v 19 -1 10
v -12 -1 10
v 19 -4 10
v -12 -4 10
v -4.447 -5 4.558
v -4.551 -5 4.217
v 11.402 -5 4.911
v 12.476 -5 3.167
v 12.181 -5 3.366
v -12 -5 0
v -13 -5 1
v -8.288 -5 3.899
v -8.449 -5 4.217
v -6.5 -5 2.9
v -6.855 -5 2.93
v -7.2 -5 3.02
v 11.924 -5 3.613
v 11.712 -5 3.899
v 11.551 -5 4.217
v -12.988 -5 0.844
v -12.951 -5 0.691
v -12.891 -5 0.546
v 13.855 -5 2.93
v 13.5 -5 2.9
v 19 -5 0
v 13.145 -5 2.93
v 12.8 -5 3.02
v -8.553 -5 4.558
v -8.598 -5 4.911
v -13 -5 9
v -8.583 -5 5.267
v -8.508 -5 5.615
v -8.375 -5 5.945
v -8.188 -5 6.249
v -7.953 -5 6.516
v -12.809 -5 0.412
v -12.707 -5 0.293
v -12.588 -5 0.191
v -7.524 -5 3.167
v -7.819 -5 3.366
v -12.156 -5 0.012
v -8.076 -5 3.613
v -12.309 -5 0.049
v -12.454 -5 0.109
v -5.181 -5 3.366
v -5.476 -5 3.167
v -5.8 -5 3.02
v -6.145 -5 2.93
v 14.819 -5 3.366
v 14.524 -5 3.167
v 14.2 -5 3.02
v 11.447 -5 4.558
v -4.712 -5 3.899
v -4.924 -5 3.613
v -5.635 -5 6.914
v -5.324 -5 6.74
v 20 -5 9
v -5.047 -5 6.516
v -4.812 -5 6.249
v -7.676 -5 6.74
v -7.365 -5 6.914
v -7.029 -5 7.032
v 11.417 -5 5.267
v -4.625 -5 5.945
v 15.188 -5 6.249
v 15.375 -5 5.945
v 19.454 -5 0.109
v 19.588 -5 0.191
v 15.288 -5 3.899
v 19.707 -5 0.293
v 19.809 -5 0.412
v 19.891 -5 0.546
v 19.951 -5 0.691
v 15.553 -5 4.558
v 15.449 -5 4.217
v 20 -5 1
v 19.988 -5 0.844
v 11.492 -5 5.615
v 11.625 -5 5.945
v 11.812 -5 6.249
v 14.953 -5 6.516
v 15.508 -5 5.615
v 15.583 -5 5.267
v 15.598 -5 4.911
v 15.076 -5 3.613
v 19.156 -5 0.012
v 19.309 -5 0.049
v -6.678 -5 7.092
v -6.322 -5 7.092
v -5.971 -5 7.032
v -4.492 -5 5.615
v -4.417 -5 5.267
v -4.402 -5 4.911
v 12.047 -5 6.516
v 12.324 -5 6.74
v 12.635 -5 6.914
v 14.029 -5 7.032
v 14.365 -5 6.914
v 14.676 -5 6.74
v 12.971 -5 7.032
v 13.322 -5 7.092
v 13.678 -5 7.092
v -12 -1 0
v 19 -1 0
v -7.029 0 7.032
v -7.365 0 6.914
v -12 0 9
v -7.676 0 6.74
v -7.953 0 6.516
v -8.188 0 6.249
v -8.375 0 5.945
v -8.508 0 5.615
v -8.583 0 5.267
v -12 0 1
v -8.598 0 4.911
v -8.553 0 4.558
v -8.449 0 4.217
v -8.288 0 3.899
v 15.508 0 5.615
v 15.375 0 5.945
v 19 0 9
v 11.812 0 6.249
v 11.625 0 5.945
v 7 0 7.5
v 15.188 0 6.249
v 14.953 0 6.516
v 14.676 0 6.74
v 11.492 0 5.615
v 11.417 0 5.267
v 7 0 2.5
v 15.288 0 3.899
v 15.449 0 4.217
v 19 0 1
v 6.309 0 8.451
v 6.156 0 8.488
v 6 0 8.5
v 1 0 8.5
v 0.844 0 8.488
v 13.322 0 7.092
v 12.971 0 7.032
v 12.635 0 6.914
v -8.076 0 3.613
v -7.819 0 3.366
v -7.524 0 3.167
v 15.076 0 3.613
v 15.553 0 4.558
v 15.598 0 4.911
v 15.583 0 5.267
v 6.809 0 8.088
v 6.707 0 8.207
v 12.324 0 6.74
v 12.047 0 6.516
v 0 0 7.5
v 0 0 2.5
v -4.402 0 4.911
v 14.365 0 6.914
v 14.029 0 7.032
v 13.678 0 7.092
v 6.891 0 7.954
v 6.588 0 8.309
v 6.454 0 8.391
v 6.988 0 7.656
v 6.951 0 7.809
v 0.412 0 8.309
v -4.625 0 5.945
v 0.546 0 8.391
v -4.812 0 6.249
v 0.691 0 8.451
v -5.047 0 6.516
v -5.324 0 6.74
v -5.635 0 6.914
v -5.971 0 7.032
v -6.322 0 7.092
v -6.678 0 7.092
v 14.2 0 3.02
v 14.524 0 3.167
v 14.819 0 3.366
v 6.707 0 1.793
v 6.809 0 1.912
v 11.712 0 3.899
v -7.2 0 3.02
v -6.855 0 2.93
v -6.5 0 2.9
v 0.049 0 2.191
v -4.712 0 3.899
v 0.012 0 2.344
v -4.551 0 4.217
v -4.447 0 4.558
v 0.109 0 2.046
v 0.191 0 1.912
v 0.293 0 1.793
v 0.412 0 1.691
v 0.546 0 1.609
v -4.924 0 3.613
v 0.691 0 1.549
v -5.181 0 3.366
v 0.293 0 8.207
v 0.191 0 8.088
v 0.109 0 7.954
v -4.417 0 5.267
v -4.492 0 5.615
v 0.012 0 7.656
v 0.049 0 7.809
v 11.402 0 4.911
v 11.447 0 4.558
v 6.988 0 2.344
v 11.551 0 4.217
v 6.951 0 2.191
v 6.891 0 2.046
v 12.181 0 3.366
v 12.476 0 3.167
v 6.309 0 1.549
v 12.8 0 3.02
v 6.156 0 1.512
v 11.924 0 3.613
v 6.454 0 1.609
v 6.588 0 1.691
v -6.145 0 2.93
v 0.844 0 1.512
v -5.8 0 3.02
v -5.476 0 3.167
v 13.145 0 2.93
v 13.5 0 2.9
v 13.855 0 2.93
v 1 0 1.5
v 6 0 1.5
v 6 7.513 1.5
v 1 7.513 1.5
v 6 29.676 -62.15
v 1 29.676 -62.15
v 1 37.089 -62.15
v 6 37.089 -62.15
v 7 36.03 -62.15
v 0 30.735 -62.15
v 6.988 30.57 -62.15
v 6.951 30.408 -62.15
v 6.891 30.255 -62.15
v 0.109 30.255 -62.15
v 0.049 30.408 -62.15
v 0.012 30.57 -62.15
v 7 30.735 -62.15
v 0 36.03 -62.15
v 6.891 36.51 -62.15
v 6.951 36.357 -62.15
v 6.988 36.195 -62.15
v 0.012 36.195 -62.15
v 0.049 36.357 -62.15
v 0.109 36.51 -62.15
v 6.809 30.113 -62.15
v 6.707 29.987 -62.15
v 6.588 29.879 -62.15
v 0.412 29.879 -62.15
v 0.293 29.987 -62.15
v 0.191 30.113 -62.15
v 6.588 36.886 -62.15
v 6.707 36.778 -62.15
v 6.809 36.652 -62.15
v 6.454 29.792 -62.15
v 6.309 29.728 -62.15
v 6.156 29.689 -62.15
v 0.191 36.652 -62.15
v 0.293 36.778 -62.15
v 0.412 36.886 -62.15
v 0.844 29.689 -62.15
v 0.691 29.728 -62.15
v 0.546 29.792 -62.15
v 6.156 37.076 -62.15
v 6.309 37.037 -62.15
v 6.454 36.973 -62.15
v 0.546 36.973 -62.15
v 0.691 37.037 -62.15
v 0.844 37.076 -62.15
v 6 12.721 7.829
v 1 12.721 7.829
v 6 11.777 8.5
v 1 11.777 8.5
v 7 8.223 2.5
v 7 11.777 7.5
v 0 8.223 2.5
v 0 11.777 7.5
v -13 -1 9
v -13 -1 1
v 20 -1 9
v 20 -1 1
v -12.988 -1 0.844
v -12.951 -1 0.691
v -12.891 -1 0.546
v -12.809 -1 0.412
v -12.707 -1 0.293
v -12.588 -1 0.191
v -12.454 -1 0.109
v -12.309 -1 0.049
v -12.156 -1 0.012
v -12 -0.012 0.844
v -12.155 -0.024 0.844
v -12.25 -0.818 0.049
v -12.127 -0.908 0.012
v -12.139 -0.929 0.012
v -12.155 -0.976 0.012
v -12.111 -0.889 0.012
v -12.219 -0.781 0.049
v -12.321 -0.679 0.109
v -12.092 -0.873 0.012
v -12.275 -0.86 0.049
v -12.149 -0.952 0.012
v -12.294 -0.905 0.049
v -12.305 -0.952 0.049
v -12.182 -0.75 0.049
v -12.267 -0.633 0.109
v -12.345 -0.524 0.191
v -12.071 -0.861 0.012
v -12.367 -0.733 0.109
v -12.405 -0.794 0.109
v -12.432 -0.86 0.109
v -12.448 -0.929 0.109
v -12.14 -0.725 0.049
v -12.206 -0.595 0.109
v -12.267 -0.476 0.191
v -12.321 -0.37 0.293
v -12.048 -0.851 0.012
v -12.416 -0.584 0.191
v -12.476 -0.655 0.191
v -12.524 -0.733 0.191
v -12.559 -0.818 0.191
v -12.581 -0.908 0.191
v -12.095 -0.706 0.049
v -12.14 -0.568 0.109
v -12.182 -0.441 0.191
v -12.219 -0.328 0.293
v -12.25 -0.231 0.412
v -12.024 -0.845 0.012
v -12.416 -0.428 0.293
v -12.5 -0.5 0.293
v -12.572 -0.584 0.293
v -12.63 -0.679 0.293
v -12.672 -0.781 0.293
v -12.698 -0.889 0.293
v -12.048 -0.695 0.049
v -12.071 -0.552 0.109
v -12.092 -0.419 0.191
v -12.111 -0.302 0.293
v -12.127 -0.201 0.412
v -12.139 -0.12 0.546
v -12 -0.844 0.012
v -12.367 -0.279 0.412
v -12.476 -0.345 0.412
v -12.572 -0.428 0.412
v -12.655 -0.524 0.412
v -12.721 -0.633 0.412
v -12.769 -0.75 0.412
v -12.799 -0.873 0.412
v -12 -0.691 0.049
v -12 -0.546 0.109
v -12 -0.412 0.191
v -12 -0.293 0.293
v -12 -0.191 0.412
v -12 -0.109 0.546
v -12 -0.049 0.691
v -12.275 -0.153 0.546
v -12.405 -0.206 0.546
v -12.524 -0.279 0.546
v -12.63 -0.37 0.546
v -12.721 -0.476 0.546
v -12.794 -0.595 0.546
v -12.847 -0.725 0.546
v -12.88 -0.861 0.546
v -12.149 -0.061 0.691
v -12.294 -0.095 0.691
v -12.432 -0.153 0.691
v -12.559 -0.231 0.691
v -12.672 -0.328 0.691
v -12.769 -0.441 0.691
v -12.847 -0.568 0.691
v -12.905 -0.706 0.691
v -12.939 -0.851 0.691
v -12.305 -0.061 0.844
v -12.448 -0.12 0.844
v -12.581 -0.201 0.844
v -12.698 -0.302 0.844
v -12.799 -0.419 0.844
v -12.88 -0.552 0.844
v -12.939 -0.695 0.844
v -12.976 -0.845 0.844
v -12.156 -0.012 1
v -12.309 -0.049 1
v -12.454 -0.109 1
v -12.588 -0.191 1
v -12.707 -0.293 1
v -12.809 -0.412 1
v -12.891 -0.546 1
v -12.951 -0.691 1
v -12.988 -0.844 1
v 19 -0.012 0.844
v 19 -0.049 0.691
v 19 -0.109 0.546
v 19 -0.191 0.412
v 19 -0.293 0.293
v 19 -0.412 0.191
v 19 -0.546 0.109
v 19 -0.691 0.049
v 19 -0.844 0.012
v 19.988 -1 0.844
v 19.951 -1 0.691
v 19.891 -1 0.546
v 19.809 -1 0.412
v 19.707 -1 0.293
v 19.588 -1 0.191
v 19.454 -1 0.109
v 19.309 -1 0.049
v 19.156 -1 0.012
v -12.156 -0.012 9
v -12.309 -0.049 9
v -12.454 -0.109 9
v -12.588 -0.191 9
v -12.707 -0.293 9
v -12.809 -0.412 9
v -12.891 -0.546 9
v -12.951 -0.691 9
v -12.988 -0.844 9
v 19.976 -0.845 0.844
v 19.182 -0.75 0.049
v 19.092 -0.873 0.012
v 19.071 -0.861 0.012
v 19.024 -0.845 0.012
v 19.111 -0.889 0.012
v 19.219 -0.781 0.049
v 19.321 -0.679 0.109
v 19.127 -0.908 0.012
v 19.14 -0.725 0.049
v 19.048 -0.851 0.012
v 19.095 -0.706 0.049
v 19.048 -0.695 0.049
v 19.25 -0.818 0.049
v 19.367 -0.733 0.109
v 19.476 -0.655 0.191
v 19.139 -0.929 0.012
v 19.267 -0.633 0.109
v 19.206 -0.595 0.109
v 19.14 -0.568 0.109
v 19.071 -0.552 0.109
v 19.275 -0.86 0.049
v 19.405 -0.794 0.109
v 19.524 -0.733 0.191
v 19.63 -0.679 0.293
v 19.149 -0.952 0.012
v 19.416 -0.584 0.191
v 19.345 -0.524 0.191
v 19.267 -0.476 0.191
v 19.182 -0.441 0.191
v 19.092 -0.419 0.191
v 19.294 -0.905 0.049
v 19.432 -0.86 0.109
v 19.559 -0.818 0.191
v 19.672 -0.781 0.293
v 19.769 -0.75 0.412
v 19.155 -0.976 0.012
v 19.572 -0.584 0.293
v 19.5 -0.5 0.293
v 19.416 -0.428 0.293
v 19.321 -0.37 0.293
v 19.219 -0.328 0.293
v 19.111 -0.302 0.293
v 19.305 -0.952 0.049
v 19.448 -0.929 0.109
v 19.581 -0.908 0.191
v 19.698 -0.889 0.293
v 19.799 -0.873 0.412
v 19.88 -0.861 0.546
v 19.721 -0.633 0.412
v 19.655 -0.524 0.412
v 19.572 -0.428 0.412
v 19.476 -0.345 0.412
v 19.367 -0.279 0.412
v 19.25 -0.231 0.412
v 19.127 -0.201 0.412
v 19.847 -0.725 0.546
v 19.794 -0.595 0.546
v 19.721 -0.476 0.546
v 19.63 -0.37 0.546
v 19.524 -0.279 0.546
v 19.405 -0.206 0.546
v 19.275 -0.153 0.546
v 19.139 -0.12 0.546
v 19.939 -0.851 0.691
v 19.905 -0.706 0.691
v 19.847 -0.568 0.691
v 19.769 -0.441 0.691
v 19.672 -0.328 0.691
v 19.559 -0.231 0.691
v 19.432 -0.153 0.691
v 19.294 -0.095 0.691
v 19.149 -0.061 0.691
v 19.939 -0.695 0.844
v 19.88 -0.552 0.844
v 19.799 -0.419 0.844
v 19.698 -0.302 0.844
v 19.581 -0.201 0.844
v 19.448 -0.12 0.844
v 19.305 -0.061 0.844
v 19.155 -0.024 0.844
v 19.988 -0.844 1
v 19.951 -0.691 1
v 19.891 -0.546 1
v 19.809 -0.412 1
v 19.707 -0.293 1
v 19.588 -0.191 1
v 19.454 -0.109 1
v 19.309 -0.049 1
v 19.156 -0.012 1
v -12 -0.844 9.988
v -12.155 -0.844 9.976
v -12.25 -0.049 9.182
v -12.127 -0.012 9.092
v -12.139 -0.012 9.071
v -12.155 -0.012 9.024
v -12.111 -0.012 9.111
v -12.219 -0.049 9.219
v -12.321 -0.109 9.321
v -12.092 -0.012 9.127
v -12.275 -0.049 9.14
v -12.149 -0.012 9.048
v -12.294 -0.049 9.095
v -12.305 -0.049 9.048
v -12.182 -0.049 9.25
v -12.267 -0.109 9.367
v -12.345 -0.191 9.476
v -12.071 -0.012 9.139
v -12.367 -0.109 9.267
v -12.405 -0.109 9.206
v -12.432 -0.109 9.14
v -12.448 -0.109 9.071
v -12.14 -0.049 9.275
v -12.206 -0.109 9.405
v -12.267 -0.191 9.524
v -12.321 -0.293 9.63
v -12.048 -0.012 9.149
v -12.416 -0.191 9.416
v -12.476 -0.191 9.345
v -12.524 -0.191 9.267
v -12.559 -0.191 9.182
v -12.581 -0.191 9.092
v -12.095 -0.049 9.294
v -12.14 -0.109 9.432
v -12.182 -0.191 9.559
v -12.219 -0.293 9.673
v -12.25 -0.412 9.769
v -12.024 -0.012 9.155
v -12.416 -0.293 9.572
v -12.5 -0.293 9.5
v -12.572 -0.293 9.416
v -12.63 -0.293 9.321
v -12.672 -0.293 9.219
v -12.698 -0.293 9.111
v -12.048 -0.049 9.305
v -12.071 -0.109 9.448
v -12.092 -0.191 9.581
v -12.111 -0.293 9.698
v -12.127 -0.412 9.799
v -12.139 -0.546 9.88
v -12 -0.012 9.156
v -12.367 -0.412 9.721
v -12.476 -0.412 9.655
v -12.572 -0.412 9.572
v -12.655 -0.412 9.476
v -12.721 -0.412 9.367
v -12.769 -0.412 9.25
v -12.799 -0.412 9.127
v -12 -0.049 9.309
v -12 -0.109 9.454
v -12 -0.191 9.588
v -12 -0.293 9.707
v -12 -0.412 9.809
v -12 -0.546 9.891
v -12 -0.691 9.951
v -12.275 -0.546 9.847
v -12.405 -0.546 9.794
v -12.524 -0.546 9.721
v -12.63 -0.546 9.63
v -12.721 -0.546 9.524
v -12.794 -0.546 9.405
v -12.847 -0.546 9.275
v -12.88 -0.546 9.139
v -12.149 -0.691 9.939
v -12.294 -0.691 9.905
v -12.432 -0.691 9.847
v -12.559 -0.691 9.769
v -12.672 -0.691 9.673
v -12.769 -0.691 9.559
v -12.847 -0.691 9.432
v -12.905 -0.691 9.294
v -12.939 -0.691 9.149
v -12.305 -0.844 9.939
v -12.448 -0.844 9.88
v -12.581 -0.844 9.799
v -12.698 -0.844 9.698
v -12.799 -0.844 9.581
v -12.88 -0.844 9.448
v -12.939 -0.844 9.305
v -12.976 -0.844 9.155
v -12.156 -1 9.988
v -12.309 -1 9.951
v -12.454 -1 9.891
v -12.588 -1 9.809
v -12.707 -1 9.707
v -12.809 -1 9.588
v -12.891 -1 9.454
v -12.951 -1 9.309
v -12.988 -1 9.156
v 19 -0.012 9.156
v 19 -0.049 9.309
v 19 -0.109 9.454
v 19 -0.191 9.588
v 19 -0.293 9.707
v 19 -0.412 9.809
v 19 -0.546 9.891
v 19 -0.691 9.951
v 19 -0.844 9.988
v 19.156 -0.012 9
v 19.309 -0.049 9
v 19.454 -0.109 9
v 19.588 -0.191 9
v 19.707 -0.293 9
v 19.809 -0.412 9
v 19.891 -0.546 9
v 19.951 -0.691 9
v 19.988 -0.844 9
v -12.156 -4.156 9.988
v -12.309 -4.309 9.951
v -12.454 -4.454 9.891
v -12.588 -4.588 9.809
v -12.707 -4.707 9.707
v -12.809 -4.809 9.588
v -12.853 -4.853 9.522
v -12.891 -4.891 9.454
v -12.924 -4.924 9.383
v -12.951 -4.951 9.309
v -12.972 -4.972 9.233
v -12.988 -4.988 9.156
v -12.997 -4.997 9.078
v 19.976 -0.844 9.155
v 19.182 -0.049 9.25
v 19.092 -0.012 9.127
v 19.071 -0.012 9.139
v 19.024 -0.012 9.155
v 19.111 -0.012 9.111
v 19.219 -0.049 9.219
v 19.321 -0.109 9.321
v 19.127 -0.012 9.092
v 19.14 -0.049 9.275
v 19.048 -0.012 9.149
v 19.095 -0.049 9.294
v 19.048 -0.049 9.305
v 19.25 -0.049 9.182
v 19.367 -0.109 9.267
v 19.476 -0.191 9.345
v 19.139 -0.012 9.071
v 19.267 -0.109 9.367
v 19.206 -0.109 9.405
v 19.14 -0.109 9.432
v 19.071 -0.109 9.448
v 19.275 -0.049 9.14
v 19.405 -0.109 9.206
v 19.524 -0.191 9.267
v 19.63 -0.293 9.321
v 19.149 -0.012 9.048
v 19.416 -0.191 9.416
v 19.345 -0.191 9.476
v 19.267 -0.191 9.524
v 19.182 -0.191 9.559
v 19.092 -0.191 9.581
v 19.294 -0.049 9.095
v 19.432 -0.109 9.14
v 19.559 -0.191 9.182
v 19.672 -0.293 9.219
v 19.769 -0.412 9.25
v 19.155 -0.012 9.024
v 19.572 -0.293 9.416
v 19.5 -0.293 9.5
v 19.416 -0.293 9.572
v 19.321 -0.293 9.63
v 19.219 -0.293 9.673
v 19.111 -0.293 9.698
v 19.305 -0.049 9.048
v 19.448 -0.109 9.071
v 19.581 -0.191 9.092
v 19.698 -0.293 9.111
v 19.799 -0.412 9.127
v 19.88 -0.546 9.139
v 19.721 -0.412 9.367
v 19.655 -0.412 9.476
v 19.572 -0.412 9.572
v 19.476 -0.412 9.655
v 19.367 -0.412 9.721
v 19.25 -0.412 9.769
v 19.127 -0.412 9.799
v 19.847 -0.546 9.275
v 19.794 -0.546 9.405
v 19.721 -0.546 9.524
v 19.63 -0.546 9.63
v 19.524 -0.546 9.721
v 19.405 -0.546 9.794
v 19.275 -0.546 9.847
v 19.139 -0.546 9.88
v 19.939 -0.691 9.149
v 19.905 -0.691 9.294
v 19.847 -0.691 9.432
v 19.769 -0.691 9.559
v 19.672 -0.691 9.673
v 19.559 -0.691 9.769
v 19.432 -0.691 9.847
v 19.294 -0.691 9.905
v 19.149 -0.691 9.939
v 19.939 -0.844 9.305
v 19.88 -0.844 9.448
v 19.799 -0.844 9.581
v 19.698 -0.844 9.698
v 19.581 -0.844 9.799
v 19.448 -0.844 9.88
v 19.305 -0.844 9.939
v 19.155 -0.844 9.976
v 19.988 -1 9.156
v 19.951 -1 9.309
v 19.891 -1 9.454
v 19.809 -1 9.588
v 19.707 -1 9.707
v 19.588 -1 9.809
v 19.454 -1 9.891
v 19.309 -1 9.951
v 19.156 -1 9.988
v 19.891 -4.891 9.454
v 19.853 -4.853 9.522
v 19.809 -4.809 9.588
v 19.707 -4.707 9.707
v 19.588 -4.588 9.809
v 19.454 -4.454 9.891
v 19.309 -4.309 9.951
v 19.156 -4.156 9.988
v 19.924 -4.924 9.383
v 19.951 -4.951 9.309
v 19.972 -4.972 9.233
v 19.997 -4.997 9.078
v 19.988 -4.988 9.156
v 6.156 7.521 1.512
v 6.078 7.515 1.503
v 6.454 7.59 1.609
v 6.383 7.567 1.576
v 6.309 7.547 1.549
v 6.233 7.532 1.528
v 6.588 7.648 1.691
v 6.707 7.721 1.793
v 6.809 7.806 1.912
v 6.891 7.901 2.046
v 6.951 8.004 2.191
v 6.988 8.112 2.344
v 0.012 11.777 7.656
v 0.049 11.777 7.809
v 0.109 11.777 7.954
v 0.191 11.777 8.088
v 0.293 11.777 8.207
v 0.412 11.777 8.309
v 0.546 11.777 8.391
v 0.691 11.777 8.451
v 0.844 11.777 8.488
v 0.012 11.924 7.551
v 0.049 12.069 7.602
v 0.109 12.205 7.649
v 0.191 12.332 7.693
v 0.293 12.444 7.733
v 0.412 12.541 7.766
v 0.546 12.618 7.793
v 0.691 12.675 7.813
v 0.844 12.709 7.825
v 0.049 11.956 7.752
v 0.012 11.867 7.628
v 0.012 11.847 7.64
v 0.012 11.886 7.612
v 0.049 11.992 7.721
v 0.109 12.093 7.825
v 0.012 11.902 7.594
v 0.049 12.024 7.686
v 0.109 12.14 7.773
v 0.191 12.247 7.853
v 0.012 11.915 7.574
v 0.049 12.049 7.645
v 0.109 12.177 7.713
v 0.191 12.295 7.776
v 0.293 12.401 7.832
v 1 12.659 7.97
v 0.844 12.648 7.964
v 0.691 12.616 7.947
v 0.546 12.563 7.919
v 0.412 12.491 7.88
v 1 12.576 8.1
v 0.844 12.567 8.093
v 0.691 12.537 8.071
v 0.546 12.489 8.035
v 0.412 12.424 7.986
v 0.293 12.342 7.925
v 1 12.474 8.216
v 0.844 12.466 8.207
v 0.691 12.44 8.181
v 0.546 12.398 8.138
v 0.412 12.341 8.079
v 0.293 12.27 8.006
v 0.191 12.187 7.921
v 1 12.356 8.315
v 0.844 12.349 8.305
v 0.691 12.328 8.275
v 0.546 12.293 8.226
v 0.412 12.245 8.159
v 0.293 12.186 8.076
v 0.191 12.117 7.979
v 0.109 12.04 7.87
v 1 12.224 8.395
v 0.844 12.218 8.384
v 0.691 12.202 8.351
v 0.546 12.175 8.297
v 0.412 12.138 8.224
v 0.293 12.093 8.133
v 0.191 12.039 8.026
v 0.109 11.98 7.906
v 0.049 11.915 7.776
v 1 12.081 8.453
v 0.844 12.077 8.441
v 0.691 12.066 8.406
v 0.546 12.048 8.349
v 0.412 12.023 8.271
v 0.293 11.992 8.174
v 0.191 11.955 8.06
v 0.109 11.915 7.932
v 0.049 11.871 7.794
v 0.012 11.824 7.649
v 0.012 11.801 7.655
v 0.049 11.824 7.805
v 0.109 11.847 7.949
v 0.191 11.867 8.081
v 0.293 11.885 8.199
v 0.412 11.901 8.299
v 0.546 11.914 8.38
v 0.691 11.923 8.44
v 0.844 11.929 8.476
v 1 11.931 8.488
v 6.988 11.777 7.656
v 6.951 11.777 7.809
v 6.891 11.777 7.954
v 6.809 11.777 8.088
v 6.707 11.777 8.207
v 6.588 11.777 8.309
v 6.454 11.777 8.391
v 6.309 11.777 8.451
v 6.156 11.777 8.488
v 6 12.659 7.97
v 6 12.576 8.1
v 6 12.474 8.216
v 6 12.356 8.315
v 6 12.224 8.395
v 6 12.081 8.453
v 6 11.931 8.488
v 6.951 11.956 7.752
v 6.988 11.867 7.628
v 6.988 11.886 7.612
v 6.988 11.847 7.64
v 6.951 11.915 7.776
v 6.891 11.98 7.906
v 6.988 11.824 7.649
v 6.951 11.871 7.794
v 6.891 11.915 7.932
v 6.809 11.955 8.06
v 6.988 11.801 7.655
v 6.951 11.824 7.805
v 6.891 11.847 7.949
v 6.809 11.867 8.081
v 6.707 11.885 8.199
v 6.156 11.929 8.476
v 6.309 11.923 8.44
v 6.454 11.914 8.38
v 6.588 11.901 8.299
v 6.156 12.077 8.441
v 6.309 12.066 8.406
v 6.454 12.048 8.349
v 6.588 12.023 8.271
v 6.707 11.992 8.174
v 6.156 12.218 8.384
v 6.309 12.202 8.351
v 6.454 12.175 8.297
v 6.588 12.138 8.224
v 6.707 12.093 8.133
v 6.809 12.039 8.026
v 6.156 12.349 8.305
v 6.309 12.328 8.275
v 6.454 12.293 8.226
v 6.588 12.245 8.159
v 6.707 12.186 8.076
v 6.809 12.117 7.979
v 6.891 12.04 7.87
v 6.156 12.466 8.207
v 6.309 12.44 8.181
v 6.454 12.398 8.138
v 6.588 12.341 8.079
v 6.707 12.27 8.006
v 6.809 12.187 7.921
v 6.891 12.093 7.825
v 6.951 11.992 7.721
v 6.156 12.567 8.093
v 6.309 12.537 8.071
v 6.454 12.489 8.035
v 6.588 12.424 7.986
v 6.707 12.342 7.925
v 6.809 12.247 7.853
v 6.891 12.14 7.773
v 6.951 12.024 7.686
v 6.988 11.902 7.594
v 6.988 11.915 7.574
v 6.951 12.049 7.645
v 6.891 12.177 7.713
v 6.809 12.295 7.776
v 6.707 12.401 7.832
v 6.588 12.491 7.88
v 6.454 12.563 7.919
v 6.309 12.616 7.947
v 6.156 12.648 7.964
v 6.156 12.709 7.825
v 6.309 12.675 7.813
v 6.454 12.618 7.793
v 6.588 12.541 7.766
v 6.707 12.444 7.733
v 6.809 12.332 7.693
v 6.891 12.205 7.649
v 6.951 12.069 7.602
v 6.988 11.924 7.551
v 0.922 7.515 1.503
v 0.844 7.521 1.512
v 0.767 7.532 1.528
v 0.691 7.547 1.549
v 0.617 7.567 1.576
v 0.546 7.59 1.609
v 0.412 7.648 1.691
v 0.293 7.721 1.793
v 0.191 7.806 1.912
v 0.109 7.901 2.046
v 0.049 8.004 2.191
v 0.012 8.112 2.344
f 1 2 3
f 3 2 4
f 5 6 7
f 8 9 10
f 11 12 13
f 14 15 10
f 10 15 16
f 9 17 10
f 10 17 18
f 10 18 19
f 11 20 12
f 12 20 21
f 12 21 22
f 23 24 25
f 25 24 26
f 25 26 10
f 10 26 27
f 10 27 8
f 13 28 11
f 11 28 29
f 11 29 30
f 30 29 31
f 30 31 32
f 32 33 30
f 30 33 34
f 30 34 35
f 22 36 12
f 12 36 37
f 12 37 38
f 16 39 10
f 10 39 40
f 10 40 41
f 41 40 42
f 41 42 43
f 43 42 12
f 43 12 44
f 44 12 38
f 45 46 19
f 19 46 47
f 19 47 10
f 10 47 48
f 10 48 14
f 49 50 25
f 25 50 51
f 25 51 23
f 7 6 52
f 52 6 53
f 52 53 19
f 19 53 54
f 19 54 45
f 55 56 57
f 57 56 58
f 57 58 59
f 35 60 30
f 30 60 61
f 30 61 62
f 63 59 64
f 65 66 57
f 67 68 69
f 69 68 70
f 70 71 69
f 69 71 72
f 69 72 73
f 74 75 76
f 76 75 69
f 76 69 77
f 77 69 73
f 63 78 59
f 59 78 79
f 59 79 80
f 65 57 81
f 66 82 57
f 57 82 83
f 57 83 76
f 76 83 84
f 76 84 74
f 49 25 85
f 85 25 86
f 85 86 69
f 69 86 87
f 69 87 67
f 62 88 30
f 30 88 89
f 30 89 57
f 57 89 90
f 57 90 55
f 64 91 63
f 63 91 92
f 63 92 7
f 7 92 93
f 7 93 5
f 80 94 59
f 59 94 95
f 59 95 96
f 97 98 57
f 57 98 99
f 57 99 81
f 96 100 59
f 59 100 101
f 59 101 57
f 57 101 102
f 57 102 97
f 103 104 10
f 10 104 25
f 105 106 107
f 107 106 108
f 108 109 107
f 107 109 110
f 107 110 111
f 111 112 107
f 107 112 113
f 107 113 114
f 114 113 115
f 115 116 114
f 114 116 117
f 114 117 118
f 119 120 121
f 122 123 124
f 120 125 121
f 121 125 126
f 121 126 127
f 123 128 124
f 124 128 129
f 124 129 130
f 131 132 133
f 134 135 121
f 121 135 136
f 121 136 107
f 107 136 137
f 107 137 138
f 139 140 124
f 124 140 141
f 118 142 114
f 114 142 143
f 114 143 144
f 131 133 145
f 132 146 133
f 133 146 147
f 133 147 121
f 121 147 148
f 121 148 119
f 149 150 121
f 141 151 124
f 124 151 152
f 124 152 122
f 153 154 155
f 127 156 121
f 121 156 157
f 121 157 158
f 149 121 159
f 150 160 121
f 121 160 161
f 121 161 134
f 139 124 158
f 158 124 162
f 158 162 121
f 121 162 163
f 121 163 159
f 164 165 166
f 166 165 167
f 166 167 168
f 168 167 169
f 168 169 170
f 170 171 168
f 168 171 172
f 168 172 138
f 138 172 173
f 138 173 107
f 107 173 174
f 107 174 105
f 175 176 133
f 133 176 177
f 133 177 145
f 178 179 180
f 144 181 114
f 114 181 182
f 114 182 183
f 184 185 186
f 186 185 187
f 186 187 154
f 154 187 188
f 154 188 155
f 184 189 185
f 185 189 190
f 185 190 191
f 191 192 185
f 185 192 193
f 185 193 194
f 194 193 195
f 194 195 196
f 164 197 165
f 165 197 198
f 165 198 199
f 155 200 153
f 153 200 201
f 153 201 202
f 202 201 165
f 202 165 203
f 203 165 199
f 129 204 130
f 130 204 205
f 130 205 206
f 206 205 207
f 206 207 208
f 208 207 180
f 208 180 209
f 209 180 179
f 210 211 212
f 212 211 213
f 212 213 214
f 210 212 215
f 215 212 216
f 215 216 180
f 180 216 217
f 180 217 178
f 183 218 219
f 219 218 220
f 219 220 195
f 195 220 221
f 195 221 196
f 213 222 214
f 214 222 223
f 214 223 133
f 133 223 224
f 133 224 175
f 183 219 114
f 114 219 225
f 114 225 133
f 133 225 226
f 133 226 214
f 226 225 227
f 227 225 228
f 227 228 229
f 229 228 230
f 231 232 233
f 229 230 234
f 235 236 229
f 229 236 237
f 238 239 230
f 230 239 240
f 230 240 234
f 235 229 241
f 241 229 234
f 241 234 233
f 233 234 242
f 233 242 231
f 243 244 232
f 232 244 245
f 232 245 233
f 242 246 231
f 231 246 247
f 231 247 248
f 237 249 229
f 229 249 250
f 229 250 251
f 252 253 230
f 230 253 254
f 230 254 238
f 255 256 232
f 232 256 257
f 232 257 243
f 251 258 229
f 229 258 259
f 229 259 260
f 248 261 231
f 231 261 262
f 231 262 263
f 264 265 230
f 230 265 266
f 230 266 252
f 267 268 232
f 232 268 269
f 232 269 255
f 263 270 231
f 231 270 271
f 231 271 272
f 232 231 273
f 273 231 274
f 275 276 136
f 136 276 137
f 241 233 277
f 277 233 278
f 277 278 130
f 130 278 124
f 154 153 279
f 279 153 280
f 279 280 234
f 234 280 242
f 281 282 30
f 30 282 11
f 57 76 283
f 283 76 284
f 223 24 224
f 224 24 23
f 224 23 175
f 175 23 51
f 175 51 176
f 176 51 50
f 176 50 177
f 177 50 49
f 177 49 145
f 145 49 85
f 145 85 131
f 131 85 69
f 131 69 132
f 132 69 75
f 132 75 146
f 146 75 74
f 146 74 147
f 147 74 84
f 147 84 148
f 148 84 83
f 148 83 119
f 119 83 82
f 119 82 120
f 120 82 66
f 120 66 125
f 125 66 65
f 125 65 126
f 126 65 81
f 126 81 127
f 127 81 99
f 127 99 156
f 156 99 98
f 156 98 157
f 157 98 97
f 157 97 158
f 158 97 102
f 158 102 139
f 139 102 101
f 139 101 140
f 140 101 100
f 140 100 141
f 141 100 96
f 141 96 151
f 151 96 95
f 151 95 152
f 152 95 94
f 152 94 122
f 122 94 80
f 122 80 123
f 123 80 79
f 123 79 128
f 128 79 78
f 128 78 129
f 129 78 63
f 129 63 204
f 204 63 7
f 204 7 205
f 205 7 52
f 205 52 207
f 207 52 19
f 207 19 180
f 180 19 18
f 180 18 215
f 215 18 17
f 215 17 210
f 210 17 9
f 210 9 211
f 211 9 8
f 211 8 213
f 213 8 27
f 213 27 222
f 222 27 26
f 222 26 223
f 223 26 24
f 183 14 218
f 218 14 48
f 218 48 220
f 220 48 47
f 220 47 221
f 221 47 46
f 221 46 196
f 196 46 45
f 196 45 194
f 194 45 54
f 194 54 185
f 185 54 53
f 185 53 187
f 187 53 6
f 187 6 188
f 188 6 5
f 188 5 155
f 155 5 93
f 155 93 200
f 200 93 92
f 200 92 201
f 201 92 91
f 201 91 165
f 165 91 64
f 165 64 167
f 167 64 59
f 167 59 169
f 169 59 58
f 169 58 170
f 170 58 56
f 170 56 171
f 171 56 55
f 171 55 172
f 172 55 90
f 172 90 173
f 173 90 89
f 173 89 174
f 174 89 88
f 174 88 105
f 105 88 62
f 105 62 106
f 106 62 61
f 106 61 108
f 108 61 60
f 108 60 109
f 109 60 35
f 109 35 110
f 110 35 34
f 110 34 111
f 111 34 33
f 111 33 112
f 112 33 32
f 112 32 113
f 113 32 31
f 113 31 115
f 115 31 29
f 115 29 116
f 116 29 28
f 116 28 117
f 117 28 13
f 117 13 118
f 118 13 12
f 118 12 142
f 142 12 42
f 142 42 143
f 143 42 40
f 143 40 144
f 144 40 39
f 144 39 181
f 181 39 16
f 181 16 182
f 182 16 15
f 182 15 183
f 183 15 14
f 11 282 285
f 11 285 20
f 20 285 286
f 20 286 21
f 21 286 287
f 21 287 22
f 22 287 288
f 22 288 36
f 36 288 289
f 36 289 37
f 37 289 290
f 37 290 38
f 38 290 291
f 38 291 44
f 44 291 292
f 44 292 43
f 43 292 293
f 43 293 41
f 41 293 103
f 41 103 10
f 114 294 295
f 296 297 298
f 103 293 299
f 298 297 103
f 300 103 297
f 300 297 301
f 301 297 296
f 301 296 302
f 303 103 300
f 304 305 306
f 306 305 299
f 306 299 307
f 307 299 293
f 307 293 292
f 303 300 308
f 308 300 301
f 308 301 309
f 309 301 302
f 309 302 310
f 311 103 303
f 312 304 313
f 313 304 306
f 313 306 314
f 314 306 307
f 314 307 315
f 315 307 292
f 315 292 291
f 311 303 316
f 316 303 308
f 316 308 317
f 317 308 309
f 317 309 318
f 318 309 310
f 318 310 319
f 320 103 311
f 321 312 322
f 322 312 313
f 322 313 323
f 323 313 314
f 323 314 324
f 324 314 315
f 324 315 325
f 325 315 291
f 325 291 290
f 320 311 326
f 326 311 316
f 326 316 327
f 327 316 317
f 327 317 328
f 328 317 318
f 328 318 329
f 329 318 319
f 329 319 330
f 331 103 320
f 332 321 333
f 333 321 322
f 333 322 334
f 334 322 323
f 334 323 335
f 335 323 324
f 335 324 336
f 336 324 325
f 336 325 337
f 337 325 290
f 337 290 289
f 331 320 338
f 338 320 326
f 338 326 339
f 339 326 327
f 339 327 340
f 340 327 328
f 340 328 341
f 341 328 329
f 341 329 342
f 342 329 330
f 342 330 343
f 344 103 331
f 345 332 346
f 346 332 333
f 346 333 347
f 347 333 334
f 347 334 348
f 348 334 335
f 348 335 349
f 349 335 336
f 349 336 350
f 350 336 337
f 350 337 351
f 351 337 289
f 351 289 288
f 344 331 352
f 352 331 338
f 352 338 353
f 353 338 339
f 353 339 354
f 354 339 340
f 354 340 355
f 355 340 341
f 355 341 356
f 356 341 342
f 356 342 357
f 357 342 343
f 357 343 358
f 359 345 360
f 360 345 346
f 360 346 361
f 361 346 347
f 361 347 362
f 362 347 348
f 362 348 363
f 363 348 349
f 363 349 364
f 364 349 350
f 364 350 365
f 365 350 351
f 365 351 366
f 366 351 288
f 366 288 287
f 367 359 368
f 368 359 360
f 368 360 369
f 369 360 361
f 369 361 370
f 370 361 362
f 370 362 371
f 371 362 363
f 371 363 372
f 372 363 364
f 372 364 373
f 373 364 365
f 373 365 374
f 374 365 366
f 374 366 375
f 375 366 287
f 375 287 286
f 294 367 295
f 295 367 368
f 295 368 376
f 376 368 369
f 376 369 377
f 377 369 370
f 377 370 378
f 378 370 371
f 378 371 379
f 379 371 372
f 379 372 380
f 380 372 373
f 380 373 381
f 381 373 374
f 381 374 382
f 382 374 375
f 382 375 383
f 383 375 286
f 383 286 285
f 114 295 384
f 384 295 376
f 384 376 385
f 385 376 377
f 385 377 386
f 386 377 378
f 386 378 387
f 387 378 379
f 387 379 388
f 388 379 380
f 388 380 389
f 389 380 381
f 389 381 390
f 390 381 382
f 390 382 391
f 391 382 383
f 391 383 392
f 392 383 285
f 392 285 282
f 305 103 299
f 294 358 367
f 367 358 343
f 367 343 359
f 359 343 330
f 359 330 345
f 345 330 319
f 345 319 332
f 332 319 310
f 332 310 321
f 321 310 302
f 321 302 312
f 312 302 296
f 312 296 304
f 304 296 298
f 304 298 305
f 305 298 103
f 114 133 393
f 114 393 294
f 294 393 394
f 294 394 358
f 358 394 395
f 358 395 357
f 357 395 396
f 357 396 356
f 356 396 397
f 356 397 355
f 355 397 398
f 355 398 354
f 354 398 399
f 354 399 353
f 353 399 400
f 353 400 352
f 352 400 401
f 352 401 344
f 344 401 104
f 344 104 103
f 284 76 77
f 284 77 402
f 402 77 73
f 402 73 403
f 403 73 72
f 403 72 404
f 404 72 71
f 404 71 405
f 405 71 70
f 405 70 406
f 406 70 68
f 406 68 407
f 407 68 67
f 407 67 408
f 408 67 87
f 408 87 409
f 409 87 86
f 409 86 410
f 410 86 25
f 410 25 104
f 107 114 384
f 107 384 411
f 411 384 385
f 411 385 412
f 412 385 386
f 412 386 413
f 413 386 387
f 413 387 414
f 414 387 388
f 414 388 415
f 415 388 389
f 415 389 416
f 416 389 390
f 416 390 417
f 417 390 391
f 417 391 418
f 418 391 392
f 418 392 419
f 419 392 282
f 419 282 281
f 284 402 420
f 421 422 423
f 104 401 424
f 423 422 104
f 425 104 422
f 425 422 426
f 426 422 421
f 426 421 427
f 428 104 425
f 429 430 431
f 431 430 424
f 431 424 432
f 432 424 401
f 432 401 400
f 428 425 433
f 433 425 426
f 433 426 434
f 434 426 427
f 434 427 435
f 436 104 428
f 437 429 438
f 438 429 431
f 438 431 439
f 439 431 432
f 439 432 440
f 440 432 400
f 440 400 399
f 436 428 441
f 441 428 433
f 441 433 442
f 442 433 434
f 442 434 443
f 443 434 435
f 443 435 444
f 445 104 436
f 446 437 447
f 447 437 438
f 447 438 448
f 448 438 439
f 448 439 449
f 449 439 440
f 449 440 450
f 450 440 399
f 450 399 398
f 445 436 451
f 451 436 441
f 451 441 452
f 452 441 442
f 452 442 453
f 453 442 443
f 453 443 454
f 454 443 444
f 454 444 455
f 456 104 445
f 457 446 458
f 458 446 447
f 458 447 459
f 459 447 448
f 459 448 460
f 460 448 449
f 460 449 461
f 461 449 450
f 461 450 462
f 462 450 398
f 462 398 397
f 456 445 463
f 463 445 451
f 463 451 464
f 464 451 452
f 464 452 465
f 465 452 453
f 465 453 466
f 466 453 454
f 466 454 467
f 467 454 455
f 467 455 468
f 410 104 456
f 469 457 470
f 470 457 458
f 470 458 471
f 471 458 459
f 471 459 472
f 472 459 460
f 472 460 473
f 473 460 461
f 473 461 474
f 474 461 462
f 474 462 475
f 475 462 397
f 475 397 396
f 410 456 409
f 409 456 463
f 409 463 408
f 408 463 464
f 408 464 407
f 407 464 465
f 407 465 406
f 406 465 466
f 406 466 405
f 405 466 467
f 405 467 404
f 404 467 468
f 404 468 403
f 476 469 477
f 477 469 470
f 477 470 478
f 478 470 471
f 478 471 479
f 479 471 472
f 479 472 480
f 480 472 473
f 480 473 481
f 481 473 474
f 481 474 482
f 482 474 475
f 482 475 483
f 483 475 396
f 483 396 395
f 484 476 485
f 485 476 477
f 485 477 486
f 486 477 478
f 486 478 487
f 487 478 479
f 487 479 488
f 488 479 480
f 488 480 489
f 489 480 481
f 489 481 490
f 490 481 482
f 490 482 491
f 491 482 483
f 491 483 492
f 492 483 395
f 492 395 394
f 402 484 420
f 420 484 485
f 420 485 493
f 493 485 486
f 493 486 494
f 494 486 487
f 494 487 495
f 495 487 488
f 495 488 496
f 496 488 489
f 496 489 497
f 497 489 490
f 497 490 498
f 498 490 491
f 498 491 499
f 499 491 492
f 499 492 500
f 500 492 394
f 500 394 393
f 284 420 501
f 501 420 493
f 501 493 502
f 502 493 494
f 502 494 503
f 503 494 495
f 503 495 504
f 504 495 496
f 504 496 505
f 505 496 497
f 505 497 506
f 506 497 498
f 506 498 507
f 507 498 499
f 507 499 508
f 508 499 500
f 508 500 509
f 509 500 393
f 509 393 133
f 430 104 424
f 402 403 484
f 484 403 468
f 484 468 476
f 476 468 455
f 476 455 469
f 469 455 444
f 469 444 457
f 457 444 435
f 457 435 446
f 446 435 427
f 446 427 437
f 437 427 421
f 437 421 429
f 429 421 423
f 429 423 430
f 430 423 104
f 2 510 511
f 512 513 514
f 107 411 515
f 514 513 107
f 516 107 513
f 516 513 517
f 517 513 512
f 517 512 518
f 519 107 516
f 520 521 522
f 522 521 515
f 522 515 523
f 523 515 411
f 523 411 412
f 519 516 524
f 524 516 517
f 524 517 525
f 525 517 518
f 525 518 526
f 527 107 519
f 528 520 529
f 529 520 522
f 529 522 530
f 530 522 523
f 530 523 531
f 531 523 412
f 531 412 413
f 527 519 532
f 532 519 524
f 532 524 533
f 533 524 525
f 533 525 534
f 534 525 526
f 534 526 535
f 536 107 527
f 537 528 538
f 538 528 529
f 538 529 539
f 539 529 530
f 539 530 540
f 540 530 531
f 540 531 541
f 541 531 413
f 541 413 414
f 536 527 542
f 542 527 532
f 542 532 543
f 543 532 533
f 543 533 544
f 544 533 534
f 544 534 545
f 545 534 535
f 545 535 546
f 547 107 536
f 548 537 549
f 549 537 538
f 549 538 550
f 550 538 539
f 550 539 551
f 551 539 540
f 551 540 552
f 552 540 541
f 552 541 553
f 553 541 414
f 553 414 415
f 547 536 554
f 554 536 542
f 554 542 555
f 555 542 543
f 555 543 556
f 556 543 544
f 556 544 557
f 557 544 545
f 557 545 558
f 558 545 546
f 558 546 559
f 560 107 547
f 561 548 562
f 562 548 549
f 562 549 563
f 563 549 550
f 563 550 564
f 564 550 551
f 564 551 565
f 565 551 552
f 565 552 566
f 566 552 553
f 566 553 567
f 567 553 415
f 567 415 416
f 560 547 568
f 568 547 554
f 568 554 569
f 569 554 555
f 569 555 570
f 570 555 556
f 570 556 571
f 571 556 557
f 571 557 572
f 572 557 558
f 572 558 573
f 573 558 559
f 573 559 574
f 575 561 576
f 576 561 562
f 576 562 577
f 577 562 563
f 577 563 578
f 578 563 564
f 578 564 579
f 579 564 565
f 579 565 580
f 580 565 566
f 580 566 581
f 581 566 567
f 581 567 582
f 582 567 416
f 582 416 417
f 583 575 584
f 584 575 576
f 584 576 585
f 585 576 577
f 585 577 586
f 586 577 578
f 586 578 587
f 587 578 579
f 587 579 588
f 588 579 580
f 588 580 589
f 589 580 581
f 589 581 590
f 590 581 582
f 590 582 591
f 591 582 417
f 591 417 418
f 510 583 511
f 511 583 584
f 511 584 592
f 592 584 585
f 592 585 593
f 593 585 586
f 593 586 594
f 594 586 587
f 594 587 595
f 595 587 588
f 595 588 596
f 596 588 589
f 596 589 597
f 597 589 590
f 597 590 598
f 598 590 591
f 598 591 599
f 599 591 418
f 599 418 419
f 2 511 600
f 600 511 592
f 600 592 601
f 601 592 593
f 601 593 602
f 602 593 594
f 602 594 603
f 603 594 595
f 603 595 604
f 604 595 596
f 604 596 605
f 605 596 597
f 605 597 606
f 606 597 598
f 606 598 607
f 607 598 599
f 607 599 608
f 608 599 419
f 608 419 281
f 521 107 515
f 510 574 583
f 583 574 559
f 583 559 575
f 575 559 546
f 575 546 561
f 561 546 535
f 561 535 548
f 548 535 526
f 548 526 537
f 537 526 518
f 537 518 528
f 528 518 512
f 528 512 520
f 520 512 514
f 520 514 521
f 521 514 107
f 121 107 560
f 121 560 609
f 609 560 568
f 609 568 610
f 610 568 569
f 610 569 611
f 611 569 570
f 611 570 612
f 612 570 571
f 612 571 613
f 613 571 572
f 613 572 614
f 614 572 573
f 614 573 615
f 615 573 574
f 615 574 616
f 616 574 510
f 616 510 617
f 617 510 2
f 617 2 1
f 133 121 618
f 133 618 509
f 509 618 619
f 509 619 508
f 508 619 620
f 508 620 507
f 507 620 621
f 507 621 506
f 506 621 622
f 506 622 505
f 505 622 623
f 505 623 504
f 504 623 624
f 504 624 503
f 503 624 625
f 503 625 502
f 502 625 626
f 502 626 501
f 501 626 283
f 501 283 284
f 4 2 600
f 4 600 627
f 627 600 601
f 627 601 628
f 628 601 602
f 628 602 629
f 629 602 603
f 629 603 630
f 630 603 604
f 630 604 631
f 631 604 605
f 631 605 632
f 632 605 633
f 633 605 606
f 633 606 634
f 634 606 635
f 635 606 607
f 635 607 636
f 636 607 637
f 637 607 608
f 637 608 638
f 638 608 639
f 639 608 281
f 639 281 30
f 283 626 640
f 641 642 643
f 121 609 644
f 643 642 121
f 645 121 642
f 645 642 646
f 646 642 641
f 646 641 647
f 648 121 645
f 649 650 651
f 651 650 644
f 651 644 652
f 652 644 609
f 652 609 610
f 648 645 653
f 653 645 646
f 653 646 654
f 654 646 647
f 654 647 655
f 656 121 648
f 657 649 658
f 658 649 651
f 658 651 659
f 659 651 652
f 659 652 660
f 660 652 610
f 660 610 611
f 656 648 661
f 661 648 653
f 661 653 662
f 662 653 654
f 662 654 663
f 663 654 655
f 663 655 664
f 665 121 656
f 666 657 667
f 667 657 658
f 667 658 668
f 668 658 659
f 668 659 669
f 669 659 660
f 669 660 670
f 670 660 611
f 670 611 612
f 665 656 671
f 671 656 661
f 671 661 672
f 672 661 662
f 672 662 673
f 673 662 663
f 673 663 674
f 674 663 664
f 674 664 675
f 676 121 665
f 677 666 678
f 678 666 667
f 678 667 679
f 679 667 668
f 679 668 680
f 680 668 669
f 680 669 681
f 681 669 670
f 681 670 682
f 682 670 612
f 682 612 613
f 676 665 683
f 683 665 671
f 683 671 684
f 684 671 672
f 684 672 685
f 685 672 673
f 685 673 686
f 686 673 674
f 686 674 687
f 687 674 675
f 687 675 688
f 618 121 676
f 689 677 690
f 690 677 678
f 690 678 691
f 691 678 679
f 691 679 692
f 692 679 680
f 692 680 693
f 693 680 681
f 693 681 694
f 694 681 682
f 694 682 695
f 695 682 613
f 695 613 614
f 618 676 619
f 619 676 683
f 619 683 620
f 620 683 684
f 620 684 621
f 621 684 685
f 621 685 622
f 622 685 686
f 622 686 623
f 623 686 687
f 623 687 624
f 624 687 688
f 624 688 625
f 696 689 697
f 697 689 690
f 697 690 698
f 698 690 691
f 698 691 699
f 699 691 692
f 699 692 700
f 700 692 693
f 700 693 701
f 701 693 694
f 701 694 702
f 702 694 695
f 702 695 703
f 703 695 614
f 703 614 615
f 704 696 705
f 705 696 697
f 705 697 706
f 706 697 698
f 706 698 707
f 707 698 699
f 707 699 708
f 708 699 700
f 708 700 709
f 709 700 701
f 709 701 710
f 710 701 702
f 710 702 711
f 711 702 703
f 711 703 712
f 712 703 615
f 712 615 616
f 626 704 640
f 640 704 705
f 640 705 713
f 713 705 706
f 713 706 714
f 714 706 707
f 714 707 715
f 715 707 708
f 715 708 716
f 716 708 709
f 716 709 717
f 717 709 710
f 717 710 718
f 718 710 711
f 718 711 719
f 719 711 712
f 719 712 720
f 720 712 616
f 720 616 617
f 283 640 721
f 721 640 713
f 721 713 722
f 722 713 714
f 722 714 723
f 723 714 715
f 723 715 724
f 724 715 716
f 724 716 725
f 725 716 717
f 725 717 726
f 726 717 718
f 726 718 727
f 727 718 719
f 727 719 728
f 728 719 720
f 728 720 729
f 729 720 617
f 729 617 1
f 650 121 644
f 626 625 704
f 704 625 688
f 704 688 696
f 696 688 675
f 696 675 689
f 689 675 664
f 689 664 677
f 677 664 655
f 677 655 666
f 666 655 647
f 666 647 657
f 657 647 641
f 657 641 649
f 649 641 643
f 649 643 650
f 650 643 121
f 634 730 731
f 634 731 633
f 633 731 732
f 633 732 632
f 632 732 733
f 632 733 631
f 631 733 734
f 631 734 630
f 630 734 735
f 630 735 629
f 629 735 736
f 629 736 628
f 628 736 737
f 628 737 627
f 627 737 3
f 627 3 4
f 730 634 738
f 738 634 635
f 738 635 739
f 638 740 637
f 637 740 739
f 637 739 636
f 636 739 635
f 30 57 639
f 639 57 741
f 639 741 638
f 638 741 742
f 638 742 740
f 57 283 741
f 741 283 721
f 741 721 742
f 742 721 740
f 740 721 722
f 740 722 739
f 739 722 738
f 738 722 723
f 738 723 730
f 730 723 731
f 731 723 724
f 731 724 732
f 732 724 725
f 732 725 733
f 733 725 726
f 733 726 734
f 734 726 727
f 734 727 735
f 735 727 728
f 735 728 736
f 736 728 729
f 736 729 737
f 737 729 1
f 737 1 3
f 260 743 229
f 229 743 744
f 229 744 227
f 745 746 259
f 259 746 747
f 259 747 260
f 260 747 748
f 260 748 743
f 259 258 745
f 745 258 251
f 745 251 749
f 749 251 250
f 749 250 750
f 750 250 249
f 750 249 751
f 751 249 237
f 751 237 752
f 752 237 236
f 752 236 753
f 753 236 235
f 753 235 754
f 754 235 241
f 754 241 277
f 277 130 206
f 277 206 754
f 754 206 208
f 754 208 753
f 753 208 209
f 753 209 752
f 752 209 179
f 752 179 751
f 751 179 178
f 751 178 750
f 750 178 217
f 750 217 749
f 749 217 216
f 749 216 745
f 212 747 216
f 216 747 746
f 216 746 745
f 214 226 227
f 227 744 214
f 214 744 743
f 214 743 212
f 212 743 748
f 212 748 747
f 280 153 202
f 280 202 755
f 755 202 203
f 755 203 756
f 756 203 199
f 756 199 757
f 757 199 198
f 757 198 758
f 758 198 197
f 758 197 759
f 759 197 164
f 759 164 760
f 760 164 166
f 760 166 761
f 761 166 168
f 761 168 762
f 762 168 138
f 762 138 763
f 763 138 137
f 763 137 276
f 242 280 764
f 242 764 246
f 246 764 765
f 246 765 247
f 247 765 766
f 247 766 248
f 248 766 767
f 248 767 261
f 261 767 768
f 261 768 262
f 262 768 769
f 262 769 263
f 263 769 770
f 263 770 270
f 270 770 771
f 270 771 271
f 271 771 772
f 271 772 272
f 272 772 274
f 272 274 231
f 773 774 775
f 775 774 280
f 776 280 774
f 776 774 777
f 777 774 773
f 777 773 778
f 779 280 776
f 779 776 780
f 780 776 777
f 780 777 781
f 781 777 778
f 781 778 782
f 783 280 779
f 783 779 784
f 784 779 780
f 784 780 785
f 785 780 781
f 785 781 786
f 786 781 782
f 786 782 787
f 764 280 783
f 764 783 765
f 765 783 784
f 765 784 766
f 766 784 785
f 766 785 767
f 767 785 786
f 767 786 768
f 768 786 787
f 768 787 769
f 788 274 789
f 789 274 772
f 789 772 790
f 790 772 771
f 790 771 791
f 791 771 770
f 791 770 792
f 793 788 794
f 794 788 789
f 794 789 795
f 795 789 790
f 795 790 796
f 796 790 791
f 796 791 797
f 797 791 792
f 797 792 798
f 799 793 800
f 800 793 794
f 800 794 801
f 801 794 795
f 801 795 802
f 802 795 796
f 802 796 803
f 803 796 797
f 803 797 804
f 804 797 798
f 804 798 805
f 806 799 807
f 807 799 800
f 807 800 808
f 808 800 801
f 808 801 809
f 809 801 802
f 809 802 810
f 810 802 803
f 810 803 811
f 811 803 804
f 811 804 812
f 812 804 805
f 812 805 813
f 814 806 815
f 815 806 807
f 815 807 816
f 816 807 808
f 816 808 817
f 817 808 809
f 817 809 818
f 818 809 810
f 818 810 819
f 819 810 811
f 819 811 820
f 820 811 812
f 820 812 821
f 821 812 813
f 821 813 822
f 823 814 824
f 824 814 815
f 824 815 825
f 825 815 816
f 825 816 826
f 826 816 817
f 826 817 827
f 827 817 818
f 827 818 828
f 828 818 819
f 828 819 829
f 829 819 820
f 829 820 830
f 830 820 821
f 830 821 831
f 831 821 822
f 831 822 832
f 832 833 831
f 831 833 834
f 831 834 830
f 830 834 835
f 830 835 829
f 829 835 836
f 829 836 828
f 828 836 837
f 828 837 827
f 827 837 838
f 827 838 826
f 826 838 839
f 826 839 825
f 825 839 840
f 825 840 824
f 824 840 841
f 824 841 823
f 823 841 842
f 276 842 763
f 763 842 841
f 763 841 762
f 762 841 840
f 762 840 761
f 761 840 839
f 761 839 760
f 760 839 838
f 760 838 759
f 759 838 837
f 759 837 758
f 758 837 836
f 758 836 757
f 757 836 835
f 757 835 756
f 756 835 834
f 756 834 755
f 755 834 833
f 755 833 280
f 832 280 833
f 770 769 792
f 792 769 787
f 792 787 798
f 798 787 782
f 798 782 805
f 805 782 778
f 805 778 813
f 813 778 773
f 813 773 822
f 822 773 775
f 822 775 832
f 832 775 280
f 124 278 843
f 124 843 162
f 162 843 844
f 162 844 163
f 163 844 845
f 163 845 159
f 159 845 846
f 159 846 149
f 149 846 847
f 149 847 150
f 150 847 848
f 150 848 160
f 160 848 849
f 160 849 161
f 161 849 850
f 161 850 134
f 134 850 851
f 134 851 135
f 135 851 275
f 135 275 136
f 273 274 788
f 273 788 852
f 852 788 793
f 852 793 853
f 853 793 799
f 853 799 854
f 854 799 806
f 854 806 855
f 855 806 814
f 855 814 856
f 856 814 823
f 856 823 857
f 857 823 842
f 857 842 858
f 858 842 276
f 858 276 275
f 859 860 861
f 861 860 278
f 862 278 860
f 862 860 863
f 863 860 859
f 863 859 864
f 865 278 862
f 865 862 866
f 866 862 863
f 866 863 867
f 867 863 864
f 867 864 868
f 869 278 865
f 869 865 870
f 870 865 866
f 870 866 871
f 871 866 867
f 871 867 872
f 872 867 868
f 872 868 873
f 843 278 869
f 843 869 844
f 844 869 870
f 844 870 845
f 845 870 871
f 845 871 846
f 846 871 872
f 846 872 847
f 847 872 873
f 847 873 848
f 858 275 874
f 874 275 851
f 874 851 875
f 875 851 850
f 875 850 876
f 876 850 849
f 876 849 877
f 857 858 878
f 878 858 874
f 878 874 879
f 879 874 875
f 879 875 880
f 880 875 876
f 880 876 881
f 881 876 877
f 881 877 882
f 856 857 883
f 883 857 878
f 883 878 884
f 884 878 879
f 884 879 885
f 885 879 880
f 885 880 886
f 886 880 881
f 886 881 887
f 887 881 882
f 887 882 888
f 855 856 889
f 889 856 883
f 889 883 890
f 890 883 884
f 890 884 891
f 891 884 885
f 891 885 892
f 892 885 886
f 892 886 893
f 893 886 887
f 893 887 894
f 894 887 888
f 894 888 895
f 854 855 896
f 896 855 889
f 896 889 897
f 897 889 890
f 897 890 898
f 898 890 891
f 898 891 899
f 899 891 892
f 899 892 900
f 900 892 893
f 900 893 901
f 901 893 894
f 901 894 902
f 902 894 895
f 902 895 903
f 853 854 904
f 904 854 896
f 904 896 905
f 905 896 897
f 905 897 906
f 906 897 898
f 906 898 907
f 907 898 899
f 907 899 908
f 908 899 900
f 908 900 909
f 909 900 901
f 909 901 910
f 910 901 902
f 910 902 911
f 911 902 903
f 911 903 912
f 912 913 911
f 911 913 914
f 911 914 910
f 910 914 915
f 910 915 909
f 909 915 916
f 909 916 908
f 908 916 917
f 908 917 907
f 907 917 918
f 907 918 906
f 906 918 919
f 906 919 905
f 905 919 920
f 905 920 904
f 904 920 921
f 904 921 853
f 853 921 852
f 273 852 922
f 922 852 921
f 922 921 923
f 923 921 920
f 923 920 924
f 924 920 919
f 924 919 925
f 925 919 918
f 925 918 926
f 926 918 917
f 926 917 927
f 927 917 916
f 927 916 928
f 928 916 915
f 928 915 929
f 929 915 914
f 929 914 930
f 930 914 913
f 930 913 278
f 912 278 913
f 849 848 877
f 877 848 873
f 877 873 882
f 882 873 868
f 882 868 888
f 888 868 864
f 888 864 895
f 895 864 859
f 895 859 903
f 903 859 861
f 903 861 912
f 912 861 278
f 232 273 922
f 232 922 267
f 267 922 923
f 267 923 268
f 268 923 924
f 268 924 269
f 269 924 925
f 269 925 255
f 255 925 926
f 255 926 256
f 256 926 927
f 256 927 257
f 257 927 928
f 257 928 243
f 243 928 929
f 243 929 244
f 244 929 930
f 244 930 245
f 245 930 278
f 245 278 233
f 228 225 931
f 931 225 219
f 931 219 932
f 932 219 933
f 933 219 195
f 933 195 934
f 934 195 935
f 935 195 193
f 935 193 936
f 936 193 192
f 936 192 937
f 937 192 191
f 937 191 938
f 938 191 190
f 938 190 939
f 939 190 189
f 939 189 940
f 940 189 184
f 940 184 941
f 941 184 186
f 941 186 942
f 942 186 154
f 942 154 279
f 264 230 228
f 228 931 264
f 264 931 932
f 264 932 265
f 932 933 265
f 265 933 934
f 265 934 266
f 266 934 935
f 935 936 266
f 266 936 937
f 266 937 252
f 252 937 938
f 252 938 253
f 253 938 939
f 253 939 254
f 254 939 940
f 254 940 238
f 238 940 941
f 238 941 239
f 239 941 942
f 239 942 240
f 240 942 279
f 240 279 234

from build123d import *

# Parameters (mm, degrees)
BOSS_EXTRUDE1_DEPTH      = 7
BOSS_EXTRUDE2_DEPTH      = 13
BOSS_EXTRUDE2_DEPTH_BACK = 20
SKETCH2_W                = 5
SKETCH2_H                = 10
SKETCH4_R                = 2.1
CUT_EXTRUDE1_DEPTH       = 78.679302724
FILLET1_R                = 1


with BuildPart() as part:
    # Sketch1 → Boss-Extrude1 (new body)
    with BuildSketch(Plane.YZ):
        Polygon((0, 0), (-5, 0), (-5, 10), (0, 10), (0, 8.5), (12.487376862, 8.5), (36.687835728, -60.999037426), (37.088615702, -62.15), (29.67637193, -62.15), (7.512623138, 1.5), (0, 1.5), align=None)
    extrude(amount=BOSS_EXTRUDE1_DEPTH)

    # Sketch2 → Boss-Extrude2 (add, two sides: drawn at the far end of the back side and taken through both)
    with BuildSketch(Plane.YZ.offset(7).offset(-BOSS_EXTRUDE2_DEPTH_BACK)):
        with Locations((-2.5, 5)):
            Rectangle(SKETCH2_W, SKETCH2_H)
    extrude(amount=BOSS_EXTRUDE2_DEPTH + BOSS_EXTRUDE2_DEPTH_BACK)

    # Sketch4 → Cut-Extrude1 (cut, through all)
    with BuildSketch(Plane.XZ.offset(5)):
        with Locations(Location((-6.5, 5, 0), (0, 0, 270))):
            Circle(SKETCH4_R)
        with Locations(Location((13.5, 5, 0), (0, 0, 270))):
            Circle(SKETCH4_R)
    extrude(amount=-CUT_EXTRUDE1_DEPTH, mode=Mode.SUBTRACT)

    # Fillet1
    fillet1_edges = [part.edges().sort_by_distance(p)[0] for p in [
        (0, 6.243688431, 8.5),
        (0, 24.787996282, -26.825),
        (0, 18.594497534, -30.325),
        (0, 3.756311569, 1.5),
        (3.5, 12.487376862, 8.5),
        (3.5, 0, 0),
        (3.5, -5, 10),
        (3.5, 0, 10),
        (7, 3.756311569, 1.5),
        (7, 18.594497534, -30.325),
        (-13, -2.5, 10),
        (7, 24.787996282, -26.825),
        (-13, 0, 5),
        (-13, -2.5, 0),
        (20, -2.5, 0),
        (20, 0, 5),
        (20, -2.5, 10),
        (7, 6.243688431, 8.5),
    ]]
    fillet(fillet1_edges, radius=FILLET1_R)


solid = part.part
